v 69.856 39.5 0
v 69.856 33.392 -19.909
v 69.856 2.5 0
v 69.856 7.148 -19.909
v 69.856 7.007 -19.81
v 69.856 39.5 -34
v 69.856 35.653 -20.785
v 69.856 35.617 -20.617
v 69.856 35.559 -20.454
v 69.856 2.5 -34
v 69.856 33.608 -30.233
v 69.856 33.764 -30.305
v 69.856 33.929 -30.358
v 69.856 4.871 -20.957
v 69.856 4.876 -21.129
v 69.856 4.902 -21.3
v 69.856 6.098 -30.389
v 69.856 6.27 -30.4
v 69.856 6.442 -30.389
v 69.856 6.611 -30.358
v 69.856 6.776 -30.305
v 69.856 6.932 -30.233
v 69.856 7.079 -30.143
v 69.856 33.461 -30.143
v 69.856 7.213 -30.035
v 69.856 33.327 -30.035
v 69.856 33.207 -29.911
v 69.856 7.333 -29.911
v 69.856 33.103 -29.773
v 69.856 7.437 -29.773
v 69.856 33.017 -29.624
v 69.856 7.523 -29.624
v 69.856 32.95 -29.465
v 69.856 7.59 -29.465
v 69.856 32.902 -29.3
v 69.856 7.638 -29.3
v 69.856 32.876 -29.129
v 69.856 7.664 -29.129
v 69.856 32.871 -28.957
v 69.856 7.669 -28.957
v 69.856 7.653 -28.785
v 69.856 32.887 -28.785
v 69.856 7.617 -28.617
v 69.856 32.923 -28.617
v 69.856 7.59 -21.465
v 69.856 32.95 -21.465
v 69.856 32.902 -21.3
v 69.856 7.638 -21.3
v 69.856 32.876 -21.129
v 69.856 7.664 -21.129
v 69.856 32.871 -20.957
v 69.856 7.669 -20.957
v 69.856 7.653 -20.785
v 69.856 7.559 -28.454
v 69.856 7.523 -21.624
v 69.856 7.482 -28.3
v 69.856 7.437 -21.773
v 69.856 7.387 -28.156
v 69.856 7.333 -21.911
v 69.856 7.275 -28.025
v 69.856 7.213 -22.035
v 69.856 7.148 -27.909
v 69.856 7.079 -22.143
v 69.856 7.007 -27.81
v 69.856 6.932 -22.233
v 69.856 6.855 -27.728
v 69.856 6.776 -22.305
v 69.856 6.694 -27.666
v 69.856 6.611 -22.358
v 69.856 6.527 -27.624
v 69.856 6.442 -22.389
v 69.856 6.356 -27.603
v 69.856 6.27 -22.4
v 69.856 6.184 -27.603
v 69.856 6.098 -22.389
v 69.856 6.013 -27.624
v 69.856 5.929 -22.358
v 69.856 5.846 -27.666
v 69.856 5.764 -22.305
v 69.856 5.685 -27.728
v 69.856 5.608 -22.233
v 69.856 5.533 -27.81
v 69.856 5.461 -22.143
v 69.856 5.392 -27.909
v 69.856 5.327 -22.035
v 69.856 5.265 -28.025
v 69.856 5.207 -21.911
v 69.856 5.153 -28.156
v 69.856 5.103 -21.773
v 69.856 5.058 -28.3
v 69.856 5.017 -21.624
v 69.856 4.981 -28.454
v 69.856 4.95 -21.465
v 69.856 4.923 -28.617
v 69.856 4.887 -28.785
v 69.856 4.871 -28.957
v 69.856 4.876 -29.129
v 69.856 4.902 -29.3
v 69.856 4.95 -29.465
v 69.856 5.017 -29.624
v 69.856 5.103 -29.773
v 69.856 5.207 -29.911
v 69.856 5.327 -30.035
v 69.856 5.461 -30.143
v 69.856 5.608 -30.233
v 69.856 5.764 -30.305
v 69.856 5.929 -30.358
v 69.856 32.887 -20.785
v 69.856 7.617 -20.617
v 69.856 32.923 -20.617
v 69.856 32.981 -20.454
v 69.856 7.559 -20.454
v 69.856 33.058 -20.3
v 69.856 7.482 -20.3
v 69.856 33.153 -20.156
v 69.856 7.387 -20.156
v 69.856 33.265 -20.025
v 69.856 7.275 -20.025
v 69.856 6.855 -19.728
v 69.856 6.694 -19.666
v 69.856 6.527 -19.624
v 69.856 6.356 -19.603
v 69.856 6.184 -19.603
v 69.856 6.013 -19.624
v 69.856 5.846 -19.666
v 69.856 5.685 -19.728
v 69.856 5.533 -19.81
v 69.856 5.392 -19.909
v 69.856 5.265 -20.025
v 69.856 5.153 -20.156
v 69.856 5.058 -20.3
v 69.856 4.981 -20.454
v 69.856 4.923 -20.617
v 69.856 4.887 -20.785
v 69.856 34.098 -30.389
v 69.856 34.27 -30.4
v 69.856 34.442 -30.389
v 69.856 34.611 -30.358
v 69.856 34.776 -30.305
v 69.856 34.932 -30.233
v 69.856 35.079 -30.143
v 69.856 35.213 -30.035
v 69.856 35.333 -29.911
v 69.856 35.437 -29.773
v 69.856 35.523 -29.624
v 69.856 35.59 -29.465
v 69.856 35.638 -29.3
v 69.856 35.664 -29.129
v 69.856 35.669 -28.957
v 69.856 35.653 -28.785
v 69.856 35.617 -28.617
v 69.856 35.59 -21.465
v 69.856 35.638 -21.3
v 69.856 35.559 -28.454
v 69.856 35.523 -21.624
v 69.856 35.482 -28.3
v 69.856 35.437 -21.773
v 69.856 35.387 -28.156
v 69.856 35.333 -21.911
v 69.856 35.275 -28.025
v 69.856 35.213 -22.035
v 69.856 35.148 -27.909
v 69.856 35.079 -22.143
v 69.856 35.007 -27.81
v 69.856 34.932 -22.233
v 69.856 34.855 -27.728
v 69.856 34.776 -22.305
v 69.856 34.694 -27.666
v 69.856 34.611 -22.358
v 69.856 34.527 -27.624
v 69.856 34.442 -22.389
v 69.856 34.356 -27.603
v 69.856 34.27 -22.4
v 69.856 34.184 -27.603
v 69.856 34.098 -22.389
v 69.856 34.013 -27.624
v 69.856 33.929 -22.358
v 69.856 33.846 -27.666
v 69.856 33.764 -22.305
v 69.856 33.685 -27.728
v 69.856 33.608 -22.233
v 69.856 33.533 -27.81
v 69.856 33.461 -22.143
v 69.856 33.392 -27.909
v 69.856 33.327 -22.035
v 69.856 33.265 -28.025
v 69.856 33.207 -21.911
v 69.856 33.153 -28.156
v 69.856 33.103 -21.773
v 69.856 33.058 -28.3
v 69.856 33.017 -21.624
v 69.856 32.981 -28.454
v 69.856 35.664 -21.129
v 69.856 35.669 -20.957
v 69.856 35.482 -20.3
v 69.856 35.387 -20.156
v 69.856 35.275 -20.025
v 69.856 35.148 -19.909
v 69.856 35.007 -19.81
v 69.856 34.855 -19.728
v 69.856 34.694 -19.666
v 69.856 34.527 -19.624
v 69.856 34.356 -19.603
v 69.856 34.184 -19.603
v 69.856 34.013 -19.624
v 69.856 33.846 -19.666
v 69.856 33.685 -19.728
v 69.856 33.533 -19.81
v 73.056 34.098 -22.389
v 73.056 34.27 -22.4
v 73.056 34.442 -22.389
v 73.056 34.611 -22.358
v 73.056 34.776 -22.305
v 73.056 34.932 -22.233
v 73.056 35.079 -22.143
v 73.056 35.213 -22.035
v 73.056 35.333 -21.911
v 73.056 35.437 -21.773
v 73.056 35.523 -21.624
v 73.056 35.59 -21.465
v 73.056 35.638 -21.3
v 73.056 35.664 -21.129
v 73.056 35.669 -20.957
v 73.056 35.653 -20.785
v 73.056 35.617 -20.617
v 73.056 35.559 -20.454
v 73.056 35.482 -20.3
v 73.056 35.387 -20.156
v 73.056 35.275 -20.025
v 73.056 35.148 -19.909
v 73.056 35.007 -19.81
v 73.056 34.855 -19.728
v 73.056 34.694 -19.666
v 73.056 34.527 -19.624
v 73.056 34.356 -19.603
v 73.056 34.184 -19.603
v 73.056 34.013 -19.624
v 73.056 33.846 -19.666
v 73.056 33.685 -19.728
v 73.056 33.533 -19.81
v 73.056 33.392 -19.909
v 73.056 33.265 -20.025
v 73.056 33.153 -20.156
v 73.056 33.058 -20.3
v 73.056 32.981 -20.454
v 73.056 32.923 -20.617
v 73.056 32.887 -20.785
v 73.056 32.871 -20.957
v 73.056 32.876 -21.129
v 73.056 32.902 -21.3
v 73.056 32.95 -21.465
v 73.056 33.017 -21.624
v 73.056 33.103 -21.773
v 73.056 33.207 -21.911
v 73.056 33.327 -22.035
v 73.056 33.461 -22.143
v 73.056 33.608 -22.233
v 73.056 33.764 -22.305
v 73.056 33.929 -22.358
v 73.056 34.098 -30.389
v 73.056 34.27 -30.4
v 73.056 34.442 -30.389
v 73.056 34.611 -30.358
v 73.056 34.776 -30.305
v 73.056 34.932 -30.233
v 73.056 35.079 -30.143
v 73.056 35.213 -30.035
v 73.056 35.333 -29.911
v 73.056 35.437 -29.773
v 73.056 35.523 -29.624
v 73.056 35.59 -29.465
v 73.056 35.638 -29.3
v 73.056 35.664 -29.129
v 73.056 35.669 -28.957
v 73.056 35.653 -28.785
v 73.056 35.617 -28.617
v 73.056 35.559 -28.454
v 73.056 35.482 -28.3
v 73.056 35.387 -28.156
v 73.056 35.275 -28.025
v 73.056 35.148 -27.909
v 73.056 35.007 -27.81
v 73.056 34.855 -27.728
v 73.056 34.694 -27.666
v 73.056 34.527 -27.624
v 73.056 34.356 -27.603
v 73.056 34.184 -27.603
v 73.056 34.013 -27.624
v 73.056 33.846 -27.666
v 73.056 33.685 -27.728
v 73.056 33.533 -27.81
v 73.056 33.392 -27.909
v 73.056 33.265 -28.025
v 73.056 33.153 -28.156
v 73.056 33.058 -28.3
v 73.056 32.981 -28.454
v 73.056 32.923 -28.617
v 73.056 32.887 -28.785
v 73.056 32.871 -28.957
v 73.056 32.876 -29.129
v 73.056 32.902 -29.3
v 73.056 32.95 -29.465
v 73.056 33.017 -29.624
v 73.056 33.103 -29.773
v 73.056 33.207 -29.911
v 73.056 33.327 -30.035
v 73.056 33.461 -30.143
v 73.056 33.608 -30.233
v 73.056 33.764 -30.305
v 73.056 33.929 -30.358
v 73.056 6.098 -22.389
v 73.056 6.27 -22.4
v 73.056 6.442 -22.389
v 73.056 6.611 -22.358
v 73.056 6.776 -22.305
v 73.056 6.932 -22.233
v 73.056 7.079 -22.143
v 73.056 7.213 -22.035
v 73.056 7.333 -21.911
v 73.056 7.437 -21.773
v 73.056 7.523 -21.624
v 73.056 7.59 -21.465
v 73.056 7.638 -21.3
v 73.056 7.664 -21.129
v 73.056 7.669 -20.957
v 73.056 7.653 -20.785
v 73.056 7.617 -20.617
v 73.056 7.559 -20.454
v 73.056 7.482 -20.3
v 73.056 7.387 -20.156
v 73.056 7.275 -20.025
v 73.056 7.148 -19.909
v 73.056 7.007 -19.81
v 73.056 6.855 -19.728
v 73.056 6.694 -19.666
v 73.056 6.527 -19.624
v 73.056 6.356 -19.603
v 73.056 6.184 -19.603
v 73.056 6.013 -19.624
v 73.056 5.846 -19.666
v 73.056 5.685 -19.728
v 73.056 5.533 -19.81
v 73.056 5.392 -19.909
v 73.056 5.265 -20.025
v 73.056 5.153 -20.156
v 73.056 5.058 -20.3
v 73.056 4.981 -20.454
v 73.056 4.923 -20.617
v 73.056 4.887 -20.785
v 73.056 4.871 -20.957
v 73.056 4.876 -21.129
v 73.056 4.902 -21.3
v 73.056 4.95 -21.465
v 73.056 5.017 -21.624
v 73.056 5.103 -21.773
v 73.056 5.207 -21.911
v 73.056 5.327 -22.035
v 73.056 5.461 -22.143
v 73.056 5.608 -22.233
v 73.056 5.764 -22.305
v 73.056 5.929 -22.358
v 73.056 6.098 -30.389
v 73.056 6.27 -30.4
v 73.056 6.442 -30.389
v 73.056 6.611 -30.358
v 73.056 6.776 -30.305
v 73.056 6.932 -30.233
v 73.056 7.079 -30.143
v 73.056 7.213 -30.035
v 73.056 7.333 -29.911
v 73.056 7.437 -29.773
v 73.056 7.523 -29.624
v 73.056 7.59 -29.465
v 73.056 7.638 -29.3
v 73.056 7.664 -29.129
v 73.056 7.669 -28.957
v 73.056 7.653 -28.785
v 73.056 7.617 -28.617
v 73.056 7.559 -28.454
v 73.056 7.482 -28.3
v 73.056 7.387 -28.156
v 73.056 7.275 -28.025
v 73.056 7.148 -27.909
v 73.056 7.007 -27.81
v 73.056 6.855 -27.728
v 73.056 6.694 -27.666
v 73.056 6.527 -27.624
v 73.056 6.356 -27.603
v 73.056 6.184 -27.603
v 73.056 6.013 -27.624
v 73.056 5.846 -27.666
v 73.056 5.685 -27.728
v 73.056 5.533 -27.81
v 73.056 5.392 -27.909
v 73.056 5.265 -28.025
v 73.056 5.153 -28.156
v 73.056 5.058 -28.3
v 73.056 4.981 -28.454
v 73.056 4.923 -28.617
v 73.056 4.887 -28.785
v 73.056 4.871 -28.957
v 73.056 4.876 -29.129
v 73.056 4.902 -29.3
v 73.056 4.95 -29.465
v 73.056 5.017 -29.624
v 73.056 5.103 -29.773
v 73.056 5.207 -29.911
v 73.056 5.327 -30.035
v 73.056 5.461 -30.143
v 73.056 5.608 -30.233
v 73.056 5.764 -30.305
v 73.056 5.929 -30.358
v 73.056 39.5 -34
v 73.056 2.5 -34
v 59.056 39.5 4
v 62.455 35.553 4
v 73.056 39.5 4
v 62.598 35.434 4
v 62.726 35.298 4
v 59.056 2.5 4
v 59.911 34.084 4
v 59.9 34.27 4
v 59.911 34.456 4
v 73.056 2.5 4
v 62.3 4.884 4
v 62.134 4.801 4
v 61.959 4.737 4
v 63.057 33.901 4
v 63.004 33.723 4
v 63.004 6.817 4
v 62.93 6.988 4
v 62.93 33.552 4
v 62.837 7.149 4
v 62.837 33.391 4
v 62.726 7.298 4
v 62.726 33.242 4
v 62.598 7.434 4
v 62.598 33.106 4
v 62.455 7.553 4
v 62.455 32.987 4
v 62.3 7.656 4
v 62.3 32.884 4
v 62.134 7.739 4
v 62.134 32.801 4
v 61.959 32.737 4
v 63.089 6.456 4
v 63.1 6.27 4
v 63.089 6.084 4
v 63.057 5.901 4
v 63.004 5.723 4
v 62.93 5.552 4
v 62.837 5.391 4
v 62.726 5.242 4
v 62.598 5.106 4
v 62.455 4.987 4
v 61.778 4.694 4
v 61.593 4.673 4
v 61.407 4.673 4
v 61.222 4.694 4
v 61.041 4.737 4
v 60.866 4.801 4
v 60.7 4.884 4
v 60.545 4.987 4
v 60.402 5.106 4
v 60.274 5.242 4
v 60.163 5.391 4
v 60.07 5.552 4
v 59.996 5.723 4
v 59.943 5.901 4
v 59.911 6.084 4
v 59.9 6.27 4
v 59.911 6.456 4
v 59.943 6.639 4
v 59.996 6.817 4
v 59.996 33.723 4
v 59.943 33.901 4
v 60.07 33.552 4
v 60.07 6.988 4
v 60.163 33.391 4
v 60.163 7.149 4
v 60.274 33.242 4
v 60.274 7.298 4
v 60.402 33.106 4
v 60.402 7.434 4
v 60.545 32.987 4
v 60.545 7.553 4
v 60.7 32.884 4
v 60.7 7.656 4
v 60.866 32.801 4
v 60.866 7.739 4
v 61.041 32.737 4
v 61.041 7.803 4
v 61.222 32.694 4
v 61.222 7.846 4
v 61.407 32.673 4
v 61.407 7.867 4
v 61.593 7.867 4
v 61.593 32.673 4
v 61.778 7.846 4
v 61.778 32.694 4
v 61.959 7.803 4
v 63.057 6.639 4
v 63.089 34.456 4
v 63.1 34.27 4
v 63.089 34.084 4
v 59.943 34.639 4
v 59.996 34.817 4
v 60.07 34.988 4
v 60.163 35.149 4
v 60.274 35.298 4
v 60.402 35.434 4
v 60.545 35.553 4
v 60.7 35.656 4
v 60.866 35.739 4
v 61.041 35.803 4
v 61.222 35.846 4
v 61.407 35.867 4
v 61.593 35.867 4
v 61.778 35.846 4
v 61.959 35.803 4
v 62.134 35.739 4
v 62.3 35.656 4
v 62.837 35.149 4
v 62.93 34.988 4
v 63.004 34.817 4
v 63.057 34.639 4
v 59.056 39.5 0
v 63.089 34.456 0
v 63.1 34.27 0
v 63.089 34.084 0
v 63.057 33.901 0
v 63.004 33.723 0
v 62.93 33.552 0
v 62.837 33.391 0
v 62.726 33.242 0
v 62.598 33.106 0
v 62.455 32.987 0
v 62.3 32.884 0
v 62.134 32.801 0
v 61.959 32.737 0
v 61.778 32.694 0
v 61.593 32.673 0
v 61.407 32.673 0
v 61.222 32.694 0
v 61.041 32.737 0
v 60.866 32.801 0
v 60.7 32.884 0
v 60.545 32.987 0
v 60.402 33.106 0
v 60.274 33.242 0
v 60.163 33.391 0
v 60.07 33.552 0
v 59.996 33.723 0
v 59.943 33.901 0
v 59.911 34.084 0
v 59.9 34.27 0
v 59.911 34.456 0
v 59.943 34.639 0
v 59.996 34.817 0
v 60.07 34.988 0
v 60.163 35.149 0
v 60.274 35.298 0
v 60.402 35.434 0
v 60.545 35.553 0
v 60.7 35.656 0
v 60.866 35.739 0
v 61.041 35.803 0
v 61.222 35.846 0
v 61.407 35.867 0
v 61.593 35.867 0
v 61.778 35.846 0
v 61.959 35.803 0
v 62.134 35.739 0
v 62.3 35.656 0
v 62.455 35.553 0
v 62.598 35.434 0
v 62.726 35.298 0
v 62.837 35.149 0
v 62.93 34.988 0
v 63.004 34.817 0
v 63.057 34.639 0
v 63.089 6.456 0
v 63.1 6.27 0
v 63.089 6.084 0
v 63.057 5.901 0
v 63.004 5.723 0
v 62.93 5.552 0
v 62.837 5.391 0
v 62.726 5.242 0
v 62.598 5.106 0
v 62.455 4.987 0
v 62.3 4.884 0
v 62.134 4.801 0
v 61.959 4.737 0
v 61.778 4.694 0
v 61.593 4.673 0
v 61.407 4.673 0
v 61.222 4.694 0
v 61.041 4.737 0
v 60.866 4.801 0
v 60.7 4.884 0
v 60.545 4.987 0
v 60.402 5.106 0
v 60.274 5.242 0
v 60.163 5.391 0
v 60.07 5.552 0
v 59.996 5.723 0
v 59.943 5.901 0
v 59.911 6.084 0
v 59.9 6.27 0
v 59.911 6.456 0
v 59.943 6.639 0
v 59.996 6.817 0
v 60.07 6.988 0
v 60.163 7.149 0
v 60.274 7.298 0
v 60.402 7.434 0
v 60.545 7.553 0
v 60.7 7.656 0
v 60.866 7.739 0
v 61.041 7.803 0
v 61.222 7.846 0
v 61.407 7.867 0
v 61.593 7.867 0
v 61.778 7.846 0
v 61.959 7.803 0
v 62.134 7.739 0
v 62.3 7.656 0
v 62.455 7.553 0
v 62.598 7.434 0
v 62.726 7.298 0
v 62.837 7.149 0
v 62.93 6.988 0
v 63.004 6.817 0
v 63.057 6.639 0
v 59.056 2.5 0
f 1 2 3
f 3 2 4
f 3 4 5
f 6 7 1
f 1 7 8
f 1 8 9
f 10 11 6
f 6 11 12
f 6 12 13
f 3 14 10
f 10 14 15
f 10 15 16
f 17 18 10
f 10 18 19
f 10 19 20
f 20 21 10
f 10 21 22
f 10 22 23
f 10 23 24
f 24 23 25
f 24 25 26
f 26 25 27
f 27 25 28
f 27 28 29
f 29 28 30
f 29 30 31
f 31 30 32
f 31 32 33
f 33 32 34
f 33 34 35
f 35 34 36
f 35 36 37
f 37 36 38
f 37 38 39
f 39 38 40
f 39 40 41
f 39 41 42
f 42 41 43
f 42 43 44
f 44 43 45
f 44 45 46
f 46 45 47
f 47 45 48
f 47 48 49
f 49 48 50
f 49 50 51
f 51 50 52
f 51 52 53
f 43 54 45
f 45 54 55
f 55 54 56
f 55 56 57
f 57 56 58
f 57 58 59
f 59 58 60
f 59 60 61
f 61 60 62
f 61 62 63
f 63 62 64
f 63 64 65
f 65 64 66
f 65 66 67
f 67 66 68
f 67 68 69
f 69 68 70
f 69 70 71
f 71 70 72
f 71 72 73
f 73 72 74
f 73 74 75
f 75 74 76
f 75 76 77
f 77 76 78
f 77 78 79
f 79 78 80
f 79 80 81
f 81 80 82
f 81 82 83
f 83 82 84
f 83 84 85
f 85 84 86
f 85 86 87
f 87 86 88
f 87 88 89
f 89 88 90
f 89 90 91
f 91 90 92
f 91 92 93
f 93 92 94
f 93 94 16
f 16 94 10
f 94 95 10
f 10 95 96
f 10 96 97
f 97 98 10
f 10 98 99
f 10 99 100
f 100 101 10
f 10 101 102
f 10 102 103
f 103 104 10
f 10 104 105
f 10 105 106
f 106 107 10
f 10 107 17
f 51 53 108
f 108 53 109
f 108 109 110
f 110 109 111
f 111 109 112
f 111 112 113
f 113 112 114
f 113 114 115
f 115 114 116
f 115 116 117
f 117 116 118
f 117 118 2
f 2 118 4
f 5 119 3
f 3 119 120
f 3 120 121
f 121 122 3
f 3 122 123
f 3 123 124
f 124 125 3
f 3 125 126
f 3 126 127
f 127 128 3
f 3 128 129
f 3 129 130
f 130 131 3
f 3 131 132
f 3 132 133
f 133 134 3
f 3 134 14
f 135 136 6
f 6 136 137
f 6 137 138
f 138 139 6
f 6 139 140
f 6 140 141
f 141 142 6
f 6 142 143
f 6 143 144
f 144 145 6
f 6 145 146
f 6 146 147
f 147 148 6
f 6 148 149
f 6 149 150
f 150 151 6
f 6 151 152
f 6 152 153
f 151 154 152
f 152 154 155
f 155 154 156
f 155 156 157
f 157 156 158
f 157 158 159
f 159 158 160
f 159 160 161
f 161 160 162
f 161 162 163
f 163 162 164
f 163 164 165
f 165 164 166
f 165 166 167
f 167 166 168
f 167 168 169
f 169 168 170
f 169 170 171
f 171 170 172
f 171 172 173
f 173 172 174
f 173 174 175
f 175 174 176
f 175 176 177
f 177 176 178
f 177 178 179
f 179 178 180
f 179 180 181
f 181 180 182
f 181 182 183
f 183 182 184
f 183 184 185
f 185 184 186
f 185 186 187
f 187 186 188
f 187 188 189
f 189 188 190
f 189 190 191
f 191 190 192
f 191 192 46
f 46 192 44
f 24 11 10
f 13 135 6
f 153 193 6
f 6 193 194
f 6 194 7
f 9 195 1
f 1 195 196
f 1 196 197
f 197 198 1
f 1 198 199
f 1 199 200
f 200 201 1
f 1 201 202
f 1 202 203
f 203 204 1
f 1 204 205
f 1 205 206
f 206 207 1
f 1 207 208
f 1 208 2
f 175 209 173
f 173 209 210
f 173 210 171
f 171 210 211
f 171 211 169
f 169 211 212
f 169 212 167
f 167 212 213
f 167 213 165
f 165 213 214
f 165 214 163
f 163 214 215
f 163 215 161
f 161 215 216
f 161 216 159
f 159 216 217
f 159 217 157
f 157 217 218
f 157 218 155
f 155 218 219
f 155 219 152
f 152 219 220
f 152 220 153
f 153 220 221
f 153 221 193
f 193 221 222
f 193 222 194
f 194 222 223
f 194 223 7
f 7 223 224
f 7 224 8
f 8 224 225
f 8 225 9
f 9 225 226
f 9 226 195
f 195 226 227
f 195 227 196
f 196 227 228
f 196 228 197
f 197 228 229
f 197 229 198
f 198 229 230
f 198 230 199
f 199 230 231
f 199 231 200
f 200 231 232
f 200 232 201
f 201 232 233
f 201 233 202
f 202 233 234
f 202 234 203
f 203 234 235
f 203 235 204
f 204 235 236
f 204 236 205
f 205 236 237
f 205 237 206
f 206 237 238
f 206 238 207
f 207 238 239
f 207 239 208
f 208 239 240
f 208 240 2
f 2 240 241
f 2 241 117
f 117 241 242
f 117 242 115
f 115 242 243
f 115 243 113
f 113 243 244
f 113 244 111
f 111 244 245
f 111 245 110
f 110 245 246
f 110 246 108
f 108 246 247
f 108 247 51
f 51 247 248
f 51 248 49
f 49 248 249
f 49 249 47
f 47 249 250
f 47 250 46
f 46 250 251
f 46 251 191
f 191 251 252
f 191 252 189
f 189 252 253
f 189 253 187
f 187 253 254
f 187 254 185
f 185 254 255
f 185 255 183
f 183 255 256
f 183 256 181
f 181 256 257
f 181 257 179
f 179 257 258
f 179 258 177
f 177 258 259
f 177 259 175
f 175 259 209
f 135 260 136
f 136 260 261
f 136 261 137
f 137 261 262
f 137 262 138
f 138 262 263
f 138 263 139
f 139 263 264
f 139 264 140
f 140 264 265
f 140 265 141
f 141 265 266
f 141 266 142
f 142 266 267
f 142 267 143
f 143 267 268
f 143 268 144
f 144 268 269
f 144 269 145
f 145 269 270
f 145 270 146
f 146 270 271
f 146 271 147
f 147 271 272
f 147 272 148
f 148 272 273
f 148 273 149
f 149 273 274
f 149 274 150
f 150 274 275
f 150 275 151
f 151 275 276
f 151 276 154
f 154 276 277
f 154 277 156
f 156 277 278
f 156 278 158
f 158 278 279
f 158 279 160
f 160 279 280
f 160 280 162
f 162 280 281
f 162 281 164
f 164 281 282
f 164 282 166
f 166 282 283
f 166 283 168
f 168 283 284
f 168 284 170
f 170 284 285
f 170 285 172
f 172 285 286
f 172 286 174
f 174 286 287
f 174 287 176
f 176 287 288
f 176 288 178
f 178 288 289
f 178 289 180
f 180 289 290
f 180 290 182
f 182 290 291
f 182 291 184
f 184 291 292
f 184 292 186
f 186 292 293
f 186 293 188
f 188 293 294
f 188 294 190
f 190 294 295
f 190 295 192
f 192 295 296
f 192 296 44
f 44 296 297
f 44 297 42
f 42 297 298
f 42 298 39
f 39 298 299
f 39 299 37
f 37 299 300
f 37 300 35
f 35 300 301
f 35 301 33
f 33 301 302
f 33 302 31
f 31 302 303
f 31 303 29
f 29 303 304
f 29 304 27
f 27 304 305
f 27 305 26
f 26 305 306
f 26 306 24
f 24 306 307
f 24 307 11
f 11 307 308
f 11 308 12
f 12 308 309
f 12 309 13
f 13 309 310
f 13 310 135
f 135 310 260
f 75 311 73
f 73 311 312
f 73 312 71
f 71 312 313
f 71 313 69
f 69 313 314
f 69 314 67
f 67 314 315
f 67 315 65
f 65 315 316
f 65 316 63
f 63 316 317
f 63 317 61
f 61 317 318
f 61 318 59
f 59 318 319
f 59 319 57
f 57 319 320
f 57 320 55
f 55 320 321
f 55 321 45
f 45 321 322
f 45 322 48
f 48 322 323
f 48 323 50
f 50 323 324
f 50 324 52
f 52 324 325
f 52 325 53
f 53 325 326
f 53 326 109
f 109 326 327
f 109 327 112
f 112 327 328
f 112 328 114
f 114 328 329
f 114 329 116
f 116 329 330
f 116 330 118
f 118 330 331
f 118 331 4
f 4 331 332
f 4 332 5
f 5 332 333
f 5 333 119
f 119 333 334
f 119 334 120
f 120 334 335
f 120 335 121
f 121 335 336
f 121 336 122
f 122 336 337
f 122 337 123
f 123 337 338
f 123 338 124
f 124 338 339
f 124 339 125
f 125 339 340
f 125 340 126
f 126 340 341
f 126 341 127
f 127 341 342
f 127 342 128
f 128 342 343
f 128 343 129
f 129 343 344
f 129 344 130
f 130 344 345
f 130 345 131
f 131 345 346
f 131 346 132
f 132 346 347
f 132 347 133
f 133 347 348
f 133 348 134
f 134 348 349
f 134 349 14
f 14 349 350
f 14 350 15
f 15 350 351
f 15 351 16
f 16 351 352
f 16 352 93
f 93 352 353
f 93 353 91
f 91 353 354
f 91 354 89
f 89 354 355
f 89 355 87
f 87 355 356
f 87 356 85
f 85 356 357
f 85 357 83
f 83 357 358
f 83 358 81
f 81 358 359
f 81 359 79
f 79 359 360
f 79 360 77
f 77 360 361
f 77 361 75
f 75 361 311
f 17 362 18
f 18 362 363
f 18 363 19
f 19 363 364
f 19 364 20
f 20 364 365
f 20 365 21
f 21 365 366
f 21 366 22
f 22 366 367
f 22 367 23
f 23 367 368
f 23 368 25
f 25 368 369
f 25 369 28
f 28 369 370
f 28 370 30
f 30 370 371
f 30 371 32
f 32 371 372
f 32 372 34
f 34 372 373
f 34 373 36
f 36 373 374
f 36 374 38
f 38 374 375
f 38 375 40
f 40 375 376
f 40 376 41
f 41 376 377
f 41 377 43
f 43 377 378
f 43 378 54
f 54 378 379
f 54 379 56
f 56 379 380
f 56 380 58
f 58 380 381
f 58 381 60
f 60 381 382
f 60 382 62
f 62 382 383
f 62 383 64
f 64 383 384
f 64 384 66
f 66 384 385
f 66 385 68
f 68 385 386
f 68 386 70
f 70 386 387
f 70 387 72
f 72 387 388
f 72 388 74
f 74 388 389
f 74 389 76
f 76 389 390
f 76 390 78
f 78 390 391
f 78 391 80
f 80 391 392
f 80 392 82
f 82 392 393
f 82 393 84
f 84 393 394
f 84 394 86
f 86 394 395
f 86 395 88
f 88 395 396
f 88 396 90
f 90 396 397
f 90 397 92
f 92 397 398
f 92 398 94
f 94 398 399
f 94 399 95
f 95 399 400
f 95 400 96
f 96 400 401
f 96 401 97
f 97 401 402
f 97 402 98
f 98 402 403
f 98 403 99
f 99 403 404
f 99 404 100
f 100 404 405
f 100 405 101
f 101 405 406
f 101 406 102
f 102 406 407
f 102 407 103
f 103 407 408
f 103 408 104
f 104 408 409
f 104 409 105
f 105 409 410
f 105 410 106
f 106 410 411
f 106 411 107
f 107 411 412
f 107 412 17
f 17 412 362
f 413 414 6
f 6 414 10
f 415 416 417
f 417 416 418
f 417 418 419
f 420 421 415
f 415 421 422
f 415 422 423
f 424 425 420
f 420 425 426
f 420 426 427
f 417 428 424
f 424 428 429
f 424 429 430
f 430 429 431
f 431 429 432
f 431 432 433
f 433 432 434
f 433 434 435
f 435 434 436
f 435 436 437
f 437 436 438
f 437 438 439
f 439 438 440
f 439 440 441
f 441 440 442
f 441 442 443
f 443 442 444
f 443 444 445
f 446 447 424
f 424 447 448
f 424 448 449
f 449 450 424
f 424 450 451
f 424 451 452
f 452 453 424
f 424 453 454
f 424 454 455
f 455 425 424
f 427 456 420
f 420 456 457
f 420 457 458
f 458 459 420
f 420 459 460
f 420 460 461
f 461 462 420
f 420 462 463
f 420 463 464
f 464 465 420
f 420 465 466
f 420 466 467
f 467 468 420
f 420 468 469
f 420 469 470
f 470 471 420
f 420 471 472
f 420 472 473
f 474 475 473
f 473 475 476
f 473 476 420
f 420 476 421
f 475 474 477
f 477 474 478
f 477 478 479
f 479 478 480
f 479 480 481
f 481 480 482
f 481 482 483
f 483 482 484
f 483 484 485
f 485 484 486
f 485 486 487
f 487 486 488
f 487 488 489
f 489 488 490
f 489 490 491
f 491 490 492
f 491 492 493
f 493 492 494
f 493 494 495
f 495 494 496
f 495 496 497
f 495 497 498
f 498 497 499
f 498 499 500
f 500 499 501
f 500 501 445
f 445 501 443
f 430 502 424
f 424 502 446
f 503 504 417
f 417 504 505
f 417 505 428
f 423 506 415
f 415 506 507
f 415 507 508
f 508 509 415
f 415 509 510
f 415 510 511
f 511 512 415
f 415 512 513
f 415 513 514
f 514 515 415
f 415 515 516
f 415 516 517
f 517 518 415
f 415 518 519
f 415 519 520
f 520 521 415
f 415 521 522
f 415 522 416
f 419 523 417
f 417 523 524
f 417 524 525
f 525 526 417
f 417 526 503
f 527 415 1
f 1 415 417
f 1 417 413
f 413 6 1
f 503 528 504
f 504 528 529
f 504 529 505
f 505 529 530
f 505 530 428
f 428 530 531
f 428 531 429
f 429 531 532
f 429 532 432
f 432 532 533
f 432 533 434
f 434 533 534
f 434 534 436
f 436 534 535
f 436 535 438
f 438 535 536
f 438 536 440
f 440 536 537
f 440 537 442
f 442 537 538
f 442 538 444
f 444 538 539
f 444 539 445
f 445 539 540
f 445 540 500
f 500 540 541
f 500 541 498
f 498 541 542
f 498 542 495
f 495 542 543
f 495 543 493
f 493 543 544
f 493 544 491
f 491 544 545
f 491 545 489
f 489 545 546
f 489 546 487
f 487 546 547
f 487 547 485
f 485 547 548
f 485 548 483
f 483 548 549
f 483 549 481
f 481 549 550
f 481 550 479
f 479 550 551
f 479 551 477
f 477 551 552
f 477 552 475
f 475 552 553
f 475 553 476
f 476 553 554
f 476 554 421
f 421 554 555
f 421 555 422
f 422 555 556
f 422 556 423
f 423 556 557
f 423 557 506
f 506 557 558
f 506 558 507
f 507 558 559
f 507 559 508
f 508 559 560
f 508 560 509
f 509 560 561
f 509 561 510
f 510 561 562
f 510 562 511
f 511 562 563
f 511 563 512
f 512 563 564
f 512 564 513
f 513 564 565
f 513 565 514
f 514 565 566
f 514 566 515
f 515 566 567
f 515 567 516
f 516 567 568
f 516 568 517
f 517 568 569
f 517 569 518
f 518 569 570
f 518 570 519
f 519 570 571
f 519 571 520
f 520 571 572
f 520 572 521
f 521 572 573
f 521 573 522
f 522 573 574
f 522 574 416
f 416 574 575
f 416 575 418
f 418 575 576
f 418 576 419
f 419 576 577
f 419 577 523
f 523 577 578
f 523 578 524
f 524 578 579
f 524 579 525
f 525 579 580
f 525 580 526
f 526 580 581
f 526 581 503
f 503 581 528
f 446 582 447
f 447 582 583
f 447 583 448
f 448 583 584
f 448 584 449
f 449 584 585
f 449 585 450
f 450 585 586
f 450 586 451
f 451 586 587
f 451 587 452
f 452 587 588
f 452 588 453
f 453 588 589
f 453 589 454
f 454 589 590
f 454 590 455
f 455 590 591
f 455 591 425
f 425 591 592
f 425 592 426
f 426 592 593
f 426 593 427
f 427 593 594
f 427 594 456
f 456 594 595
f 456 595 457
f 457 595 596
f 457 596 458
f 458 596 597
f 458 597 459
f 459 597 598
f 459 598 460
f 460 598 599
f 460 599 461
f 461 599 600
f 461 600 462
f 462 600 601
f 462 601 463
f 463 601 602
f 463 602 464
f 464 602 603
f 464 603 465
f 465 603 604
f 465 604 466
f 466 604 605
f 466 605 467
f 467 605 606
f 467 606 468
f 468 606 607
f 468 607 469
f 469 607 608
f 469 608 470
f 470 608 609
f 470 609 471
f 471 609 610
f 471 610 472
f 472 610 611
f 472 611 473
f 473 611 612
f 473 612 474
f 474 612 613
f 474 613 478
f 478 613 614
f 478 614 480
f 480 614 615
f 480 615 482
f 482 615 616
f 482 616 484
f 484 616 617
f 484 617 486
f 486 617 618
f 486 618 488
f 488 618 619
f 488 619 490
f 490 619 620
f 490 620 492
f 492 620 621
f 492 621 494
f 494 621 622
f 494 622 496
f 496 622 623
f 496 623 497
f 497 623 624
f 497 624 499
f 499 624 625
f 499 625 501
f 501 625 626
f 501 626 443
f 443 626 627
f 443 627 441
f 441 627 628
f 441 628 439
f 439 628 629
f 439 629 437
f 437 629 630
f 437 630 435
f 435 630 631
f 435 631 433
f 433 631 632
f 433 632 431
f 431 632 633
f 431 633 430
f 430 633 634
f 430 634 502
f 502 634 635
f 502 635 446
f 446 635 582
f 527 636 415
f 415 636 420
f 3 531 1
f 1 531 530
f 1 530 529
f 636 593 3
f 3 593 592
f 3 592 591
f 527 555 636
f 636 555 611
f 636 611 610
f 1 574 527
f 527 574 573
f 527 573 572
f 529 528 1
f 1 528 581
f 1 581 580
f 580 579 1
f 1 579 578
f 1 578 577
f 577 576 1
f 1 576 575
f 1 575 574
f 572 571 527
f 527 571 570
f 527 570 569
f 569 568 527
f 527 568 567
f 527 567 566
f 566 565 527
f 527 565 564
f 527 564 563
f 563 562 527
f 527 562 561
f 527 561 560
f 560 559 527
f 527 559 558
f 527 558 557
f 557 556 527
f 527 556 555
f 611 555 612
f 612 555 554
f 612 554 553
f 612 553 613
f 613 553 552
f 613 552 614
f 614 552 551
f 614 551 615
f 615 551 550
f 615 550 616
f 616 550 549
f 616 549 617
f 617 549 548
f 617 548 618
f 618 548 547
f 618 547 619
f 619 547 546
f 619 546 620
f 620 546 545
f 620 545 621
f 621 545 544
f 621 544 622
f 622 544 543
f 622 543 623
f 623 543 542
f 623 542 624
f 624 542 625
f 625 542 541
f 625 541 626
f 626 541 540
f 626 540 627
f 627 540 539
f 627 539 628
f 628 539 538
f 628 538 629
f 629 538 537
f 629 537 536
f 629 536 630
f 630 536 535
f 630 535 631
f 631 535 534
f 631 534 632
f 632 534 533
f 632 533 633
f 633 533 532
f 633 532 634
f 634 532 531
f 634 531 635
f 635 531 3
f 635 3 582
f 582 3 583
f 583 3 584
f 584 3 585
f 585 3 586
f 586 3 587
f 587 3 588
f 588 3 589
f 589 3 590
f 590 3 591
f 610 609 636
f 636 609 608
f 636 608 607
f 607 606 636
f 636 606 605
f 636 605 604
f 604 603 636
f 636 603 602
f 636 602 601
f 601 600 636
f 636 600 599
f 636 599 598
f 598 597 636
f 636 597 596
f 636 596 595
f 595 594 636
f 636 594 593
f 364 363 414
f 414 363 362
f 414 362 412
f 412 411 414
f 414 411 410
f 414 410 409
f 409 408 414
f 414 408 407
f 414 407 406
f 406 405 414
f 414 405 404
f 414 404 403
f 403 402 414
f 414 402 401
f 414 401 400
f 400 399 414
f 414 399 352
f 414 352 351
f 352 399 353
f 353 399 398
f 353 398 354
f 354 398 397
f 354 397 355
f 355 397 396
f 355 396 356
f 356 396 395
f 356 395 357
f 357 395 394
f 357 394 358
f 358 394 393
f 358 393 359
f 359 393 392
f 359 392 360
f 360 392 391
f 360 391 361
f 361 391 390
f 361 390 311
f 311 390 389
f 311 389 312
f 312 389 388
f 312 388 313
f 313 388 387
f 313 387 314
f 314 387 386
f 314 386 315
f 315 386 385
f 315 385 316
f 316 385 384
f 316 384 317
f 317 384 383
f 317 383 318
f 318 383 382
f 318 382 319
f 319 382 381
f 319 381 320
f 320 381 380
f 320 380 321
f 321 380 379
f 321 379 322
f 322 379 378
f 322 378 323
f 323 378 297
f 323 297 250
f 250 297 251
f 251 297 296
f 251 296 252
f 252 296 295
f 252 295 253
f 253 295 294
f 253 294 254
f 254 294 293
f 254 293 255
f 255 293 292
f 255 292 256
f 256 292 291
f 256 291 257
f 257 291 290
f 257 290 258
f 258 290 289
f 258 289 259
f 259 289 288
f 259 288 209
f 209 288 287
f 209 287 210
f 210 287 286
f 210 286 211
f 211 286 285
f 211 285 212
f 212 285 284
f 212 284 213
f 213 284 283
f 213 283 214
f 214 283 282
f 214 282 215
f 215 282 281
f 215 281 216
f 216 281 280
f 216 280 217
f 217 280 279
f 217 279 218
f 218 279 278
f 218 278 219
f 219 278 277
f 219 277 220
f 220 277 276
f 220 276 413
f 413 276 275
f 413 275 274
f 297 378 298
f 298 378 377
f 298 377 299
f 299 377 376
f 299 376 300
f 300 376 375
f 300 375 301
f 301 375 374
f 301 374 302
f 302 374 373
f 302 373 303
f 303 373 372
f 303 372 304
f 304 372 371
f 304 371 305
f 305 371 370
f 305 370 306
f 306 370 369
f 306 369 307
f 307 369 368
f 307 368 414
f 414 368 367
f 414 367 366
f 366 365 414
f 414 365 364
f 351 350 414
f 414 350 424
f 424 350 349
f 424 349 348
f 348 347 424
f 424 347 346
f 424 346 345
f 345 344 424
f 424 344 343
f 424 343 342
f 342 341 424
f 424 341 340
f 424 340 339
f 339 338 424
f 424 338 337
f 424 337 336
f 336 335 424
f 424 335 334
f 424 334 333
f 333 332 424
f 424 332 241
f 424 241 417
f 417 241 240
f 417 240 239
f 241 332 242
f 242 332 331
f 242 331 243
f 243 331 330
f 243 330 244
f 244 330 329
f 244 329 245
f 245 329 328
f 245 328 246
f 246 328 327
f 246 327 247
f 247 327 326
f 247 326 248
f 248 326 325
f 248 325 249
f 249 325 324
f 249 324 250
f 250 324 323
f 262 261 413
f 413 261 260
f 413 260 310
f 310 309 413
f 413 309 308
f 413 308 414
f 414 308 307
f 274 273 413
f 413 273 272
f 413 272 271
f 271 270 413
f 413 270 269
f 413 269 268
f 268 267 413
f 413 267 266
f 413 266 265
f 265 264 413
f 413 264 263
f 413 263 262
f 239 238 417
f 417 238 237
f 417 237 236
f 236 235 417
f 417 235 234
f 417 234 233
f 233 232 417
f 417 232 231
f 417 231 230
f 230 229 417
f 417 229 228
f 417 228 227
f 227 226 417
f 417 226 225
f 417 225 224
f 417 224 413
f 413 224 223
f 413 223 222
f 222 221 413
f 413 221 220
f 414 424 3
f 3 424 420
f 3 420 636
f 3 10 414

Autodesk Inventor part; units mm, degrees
ref_plane "YZ Plane" through (0, 0, 0) normal (1, 0, 0) x (0, 1, 0)
ref_plane "XZ Plane" through (0, 0, 0) normal (0, 1, 0) x (-1, 0, 0)
ref_plane "XY Plane" through (0, 0, 0) normal (0, 0, 1) x (1, 0, 0)
ref_plane "Work Plane1" through (0, 0, 0) normal (0, 0, 1) x (1, 0, 0)
sketch "Sketch1" plane through (0, 0, 0) normal (0, 0, 1) x (1, 0, 0)
  line L0 (63.5, -8.73) -> (63.5, 39.27) projected
  line L1 (60.6576, -39.5) -> (69.5, -30.6576) projected
  line L2 (69.5, -30.6576) -> (69.5, 39.5) projected
  line L3 (69.5, 39.5) -> (1.55, 39.5) projected
  line L4 (1.55, 39.5) -> (-11.5, 34.5) projected
  line L5 (-11.5, 34.5) -> (-67.5, 34.5) projected
  line L6 (-67.5, 34.5) -> (-69.5, 32.5) projected
  line L7 (-69.5, 32.5) -> (-69.5, -23.5) projected
  line L8 (-69.5, -23.5) -> (-67.5, -25.5) projected
  line L9 (-67.5, -25.5) -> (-11.5, -25.5) projected
  line L10 (-11.5, -25.5) -> (50.5667, -25.5) projected
  line L11 (50.5667, -25.5) -> (50.5667, -39.5) projected
  line L12 (50.5667, -39.5) -> (60.6576, -39.5) projected
  circle A0 centre (61.5, -3.73) radius 1.6 projected
  circle A1 centre (61.5, 6.27) radius 1.6 projected
  circle A2 centre (61.5, 34.27) radius 1.6 projected
  circle A3 centre (45.5, 34.27) radius 1.6 projected
  circle A4 centre (45.5, 6.27) radius 1.6 projected
  circle A5 centre (45.5, -3.73) radius 1.6 projected
  circle A6 centre (24.65, 15.77) radius 1.6 projected
  circle A7 centre (8.35, 15.77) radius 1.6 projected
  circle A8 centre (-14.5, 4.5) radius 1.95 projected
  circle A9 centre (-39.5, 29.5) radius 1.95 projected
  circle A10 centre (-64.5, -20.5) radius 1.95 projected
  circle A11 centre (-14.5, 29.5) radius 1.95 projected
  circle A12 centre (-64.5, 29.5) radius 1.95 projected
  circle A13 centre (-14.5, -20.5) radius 1.95 projected
  circle A14 centre (-39.5, -20.5) radius 1.95 projected
  circle A15 centre (-64.5, 4.5) radius 1.95 projected
  circle A16 centre (-57, 22) radius 4 projected
  circle A17 centre (-22, -13) radius 4 projected
  circle A18 centre (-57, -13) radius 4 projected
  circle A19 centre (-22, 22) radius 4 projected
  line L13 (70.0555, 39.5) -> (59.0555, 39.5)
  line L14 (59.0555, 39.5) -> (59.0555, 2.5)
  line L15 (59.0555, 2.5) -> (70.0555, 2.5)
  line L16 (70.0555, 2.5) -> (70.0555, 39.5)
  line L17 (70.0555, 39.5) -> (73.0555, 39.5)
  line L18 (73.0555, 39.5) -> (73.0555, 2.5)
  line L19 (73.0555, 2.5) -> (70.0555, 2.5)
  line L20 (70.0555, 2.5) -> (70.0555, 39.5)
  point P0 (0, 0)
  dimension "d0" = 11
  dimension "d1" = 37
  dimension "d2" = 3
extrude "Extrusion1" add sketch "Sketch1" along normal blind 4 contours L15 L14 L3 L2 | L2 L13 L16 L15 | L16 L17 L18 L19
sketch "Sketch2" plane through (73.0555, 2.5, 0) normal (1, 0, 0) x (0, 0, -1)
  circle A0 centre (29, 3.77) radius 1.4 projected
  circle A1 centre (37, 3.77) radius 1.4 projected
  circle A2 centre (21, 3.77) radius 1.4 projected
  circle A3 centre (29, 31.77) radius 1.4 projected
  circle A4 centre (37, 31.77) radius 1.4 projected
  circle A5 centre (21, 31.77) radius 1.4 projected
  circle A6 centre (37, -6.23) radius 1.4 projected
  circle A7 centre (29, -6.23) radius 1.4 projected
  circle A8 centre (21, -6.23) radius 1.4 projected
  line L0 (13, 36.77) -> (45, 36.77) projected
  line L1 (13, 36.77) -> (13, -11.23) projected
  line L2 (45, -11.23) -> (13, -11.23) projected
  line L3 (45, 36.77) -> (45, -11.23) projected
  line L4 (0, 37) -> (-4, 37) projected
  line L5 (-4, 37) -> (34, 37)
  line L6 (34, 37) -> (34, 0)
  line L7 (34, 0) -> (-4, 0)
  line L8 (-4, 0) -> (-4, 37)
  point P0 (0, -2.5)
  dimension "d5" = 38
extrude "Extrusion2" add sketch "Sketch2" against normal blind 3.2 contours L1 L7 L8 L4 L5 L6 L0 | L0 L6 L7 L1
properties part number "cellSTORM_Laserrotator_v0"
